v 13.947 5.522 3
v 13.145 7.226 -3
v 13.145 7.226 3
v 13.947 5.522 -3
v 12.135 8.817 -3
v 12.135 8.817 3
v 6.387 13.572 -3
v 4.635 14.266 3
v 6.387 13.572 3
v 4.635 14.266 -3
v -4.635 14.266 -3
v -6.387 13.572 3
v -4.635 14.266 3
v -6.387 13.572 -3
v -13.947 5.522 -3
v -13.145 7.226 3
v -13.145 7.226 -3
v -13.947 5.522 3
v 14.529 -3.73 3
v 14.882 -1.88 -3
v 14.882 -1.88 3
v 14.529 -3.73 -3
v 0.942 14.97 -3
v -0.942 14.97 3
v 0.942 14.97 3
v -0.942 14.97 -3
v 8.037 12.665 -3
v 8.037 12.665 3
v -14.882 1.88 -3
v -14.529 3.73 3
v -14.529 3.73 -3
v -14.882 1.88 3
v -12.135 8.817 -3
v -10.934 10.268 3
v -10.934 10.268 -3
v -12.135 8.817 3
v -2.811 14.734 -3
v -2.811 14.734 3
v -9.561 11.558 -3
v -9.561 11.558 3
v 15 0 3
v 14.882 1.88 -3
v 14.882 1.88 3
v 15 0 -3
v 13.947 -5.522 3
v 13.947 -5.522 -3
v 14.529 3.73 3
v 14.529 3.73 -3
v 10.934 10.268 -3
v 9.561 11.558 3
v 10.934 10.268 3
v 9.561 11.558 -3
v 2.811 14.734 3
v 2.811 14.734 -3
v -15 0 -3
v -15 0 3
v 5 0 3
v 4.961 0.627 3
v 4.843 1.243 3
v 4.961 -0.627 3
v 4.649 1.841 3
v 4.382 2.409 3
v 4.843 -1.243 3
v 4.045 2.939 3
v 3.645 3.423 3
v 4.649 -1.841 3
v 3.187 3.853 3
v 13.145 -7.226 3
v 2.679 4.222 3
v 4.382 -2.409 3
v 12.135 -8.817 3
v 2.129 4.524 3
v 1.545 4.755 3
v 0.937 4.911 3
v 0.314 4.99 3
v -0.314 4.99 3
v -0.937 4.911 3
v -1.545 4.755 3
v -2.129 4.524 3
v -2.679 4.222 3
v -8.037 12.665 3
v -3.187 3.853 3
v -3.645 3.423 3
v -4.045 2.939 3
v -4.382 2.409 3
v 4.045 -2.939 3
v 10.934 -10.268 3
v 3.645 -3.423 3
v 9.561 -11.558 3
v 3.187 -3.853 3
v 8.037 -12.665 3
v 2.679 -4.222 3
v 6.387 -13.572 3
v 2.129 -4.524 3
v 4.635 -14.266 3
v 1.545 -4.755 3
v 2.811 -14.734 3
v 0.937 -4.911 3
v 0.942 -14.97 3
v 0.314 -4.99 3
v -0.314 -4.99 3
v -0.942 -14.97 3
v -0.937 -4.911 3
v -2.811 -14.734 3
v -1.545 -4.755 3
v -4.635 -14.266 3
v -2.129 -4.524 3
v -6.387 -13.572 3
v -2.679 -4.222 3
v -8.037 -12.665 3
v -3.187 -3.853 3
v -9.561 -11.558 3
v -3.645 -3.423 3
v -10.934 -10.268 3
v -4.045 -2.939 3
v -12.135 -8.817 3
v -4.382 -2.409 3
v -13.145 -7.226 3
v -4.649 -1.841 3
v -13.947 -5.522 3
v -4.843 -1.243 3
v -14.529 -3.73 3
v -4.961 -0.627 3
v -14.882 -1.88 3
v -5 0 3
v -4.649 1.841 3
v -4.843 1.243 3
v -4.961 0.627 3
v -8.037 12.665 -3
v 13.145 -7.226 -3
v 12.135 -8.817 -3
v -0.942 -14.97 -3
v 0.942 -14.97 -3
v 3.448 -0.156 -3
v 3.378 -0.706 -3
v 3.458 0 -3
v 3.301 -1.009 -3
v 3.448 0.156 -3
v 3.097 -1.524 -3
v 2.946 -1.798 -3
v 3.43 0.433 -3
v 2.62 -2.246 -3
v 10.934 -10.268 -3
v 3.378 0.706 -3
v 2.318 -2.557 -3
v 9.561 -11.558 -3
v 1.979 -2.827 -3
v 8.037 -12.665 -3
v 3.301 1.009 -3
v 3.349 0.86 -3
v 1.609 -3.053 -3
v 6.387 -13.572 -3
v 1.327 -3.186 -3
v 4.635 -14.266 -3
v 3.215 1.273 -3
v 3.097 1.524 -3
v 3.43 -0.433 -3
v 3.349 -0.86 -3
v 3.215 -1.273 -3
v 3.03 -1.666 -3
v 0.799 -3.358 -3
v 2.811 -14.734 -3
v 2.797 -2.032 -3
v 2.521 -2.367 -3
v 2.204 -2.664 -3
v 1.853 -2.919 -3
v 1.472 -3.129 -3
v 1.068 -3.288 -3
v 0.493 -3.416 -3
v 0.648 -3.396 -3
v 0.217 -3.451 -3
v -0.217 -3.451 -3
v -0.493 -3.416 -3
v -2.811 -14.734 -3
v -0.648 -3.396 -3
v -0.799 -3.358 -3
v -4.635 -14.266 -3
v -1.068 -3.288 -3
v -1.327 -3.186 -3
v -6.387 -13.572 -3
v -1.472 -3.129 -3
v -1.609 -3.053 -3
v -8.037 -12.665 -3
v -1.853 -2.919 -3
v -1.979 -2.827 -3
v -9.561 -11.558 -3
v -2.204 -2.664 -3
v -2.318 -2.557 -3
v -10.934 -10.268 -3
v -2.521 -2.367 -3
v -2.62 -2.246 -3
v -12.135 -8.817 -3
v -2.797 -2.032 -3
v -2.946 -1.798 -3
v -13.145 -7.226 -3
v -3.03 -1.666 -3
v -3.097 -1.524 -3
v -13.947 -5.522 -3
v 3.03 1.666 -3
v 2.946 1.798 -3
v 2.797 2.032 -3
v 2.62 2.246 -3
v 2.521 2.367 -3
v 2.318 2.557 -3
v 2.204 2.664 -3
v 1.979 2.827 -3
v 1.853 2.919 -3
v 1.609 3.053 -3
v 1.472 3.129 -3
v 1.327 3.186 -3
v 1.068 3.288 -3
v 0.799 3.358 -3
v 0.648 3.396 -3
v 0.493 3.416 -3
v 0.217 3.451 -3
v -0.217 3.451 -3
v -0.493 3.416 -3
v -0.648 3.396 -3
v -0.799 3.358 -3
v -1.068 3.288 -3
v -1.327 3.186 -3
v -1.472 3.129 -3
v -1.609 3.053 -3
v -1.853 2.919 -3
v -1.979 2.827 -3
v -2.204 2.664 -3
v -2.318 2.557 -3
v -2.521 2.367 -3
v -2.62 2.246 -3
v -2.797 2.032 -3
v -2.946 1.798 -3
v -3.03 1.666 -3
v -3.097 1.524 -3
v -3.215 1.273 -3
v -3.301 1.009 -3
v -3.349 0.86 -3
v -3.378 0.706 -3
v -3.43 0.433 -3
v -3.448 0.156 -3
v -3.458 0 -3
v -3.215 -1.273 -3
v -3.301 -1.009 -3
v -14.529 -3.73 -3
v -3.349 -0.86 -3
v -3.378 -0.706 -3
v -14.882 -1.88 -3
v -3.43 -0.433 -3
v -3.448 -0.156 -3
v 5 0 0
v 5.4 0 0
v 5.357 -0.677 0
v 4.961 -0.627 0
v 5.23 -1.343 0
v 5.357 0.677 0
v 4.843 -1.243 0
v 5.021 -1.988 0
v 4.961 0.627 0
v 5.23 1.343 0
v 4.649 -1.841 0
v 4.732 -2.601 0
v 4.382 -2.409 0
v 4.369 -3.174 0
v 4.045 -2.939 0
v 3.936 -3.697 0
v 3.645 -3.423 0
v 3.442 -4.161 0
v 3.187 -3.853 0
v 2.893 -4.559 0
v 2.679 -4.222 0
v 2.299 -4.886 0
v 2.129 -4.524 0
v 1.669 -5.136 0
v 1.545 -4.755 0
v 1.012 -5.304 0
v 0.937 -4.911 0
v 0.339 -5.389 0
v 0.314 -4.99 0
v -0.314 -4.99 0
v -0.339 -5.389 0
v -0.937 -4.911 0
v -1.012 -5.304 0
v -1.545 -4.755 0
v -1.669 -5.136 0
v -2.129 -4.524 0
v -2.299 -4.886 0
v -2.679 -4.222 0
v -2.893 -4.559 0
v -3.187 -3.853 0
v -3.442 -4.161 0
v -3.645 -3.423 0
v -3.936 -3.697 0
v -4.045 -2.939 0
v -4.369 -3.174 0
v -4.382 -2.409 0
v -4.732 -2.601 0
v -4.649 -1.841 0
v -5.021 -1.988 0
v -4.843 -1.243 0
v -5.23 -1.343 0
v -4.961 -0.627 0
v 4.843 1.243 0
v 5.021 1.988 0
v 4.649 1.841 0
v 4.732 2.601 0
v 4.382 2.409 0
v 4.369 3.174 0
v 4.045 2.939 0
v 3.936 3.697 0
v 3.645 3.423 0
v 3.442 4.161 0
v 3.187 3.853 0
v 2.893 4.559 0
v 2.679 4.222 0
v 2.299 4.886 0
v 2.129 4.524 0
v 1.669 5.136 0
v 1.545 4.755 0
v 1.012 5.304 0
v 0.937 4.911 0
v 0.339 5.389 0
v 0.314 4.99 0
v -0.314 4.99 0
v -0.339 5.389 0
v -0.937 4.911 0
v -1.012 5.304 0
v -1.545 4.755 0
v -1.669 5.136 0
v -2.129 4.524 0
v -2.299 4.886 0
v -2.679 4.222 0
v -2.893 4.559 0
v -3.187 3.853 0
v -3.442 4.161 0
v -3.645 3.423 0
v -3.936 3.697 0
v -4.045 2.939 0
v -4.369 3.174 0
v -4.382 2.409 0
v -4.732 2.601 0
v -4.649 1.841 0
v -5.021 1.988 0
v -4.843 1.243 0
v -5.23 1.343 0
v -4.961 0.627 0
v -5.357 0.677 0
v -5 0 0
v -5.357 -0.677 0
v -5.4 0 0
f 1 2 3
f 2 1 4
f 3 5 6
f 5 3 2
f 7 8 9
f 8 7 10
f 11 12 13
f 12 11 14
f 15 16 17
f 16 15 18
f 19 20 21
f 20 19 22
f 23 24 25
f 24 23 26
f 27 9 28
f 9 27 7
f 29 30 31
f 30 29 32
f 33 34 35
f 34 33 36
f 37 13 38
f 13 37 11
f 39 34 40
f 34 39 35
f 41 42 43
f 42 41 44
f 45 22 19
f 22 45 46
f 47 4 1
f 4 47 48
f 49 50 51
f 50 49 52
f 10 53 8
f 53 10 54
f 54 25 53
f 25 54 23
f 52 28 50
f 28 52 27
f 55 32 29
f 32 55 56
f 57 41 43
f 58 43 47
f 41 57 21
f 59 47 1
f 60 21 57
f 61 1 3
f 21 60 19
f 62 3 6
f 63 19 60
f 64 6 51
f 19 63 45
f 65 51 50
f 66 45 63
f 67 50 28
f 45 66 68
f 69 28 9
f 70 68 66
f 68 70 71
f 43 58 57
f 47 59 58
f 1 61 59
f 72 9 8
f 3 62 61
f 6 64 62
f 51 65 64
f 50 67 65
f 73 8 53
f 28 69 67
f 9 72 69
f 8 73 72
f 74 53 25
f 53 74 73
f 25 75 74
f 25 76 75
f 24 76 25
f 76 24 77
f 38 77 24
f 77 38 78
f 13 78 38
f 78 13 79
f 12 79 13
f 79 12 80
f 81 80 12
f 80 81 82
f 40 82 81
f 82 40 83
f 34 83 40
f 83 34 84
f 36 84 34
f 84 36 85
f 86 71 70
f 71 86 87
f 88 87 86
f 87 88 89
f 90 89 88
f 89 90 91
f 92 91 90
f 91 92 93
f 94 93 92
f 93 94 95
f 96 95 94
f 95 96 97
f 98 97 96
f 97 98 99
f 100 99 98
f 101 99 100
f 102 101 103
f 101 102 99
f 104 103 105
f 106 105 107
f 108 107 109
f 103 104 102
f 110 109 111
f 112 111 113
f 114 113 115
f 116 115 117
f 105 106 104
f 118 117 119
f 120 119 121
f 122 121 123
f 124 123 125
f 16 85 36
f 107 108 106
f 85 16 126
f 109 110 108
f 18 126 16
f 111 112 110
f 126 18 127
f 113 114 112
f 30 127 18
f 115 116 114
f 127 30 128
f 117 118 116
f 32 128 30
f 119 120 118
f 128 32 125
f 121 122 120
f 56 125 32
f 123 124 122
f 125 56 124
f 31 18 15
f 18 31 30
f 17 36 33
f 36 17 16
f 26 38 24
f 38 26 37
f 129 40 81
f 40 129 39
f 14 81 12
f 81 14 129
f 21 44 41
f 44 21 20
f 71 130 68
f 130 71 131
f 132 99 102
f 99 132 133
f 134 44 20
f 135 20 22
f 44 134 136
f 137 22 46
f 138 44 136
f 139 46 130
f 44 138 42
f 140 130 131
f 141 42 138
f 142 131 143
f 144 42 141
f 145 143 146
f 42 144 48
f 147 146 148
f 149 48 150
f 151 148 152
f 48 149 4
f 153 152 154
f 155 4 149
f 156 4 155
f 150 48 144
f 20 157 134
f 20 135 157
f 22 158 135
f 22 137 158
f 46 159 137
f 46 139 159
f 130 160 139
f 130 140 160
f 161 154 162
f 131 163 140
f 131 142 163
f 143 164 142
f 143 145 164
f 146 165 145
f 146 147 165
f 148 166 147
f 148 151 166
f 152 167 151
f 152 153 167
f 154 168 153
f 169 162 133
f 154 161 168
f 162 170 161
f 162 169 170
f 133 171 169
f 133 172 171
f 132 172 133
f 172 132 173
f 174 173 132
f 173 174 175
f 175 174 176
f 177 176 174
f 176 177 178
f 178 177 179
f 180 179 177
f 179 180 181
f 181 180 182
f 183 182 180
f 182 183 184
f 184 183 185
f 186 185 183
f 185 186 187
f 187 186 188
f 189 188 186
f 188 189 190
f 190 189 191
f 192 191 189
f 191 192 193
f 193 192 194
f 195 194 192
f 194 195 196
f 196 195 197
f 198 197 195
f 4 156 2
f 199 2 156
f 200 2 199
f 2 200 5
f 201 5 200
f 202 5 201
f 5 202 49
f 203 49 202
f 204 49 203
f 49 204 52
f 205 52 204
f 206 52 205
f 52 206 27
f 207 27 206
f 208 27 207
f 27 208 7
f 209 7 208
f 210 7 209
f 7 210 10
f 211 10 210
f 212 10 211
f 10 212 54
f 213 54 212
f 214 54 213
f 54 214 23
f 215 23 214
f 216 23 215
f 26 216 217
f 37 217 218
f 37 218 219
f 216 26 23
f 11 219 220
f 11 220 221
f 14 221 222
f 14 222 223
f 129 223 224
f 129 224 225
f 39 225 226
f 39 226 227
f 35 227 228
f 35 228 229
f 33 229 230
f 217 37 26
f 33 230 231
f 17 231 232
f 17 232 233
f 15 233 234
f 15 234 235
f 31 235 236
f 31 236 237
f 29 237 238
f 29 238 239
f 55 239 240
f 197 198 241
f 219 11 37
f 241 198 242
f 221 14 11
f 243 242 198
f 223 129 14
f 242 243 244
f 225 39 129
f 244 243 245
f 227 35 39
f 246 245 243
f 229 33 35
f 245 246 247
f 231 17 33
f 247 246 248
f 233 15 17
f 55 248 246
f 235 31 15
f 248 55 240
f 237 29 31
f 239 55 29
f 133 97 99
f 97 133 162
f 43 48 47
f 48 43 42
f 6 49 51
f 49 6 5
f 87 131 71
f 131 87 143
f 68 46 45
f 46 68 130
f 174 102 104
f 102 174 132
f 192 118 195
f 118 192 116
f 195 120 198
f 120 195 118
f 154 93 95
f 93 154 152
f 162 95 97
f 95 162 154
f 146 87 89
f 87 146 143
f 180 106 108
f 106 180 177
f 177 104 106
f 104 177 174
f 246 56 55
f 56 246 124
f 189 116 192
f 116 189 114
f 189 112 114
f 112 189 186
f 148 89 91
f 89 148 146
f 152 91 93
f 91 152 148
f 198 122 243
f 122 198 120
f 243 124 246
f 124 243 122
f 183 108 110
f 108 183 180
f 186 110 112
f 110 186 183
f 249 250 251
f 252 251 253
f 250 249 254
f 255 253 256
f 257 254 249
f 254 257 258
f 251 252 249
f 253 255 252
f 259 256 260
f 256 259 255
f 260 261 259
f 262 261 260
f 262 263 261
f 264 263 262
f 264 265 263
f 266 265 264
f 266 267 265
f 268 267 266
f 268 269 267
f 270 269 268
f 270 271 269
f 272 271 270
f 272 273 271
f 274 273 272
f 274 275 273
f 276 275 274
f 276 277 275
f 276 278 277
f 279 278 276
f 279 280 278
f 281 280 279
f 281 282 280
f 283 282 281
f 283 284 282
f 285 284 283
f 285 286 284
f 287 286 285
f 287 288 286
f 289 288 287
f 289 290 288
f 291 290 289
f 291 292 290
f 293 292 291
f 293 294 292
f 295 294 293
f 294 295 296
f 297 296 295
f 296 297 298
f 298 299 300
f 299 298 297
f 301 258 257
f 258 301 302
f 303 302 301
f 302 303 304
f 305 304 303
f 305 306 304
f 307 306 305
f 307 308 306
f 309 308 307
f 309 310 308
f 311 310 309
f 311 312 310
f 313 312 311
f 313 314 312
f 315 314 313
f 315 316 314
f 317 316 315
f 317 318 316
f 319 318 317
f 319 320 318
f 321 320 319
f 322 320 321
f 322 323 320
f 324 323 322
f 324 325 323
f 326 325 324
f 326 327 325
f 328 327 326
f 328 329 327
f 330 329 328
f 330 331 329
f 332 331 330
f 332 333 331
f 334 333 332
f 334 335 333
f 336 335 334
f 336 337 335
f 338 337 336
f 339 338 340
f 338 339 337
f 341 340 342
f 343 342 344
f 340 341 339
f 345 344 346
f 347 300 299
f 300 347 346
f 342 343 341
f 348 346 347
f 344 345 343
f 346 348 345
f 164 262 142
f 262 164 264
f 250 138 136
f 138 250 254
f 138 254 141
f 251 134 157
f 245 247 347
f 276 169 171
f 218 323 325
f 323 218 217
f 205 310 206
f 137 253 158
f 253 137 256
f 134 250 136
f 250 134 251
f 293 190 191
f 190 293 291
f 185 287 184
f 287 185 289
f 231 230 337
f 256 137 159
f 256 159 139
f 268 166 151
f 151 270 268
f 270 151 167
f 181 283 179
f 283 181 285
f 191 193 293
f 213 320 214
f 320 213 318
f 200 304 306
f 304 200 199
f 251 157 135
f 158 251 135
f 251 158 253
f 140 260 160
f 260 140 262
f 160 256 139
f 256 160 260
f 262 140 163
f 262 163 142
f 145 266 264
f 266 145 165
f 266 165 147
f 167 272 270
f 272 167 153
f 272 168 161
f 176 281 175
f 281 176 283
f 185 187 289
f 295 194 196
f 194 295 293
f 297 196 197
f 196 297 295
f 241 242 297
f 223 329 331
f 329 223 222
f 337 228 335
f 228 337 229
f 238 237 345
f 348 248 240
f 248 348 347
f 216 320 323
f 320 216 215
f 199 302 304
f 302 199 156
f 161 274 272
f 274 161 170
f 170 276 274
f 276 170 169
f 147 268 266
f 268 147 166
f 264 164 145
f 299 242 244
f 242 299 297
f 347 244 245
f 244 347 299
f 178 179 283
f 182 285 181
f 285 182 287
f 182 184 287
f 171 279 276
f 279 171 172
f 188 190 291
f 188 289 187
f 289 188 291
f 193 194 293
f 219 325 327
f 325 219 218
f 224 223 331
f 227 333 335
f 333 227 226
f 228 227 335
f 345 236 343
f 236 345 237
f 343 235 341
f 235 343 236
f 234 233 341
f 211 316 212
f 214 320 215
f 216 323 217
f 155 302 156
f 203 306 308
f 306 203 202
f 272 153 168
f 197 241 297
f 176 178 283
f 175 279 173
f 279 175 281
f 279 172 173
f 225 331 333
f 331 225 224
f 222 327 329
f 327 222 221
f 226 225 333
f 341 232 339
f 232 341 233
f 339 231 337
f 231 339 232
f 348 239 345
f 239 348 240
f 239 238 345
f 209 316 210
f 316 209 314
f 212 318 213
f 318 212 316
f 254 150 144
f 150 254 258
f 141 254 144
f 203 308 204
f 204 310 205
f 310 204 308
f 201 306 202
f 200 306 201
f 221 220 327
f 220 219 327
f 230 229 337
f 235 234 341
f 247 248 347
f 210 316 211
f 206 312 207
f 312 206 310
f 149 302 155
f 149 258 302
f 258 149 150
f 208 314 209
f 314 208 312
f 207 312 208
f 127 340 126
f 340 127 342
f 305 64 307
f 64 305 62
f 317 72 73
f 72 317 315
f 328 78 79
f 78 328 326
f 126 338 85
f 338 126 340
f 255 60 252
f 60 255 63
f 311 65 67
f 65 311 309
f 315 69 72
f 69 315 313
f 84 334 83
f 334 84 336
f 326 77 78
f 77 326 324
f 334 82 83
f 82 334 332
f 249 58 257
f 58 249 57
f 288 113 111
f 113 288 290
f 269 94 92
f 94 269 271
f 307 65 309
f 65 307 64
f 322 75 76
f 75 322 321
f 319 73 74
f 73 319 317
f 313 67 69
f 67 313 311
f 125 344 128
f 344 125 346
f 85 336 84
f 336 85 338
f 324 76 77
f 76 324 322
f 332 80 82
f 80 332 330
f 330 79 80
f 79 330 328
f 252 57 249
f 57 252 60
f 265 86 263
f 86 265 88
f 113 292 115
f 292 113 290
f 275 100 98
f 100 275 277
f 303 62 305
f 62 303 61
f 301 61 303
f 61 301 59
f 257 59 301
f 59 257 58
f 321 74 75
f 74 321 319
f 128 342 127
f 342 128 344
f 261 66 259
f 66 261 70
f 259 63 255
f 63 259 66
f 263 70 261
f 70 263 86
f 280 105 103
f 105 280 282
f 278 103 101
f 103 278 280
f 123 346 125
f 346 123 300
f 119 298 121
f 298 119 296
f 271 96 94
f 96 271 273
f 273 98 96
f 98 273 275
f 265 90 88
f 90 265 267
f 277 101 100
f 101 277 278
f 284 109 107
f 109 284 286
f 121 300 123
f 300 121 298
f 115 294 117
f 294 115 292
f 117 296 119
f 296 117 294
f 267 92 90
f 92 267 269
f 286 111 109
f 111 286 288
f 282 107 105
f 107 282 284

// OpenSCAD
$fn = 50;


difference() {
	union() {
		translate(v = [0, 0, -3.0000000000]) {
			cylinder(h = 6, r = 15.0000000000);
		}
		#translate(v = [0, 0, -6.0000000000]) {
			cylinder(h = 6, r = 2.8750000000);
		}
	}
	union() {
		translate(v = [0, 0, 0]) {
			rotate(a = [0, 0, 0]) {
				difference() {
					union() {
						translate(v = [0, 0, -6.0000000000]) {
							cylinder(h = 6, r = 2.6000000000);
						}
						translate(v = [0, 0, -3.9000000000]) {
							cylinder(h = 3.9000000000, r1 = 2.8750000000, r2 = 5.4000000000);
						}
						translate(v = [0, 0, -6.0000000000]) {
							cylinder(h = 6, r = 2.8750000000);
						}
						translate(v = [0, 0, -6.0000000000]) {
							cylinder(h = 6, r = 2.6000000000);
						}
					}
					union();
				}
			}
		}
		#cylinder(h = 3, r = 5.0000000000);
	}
}
